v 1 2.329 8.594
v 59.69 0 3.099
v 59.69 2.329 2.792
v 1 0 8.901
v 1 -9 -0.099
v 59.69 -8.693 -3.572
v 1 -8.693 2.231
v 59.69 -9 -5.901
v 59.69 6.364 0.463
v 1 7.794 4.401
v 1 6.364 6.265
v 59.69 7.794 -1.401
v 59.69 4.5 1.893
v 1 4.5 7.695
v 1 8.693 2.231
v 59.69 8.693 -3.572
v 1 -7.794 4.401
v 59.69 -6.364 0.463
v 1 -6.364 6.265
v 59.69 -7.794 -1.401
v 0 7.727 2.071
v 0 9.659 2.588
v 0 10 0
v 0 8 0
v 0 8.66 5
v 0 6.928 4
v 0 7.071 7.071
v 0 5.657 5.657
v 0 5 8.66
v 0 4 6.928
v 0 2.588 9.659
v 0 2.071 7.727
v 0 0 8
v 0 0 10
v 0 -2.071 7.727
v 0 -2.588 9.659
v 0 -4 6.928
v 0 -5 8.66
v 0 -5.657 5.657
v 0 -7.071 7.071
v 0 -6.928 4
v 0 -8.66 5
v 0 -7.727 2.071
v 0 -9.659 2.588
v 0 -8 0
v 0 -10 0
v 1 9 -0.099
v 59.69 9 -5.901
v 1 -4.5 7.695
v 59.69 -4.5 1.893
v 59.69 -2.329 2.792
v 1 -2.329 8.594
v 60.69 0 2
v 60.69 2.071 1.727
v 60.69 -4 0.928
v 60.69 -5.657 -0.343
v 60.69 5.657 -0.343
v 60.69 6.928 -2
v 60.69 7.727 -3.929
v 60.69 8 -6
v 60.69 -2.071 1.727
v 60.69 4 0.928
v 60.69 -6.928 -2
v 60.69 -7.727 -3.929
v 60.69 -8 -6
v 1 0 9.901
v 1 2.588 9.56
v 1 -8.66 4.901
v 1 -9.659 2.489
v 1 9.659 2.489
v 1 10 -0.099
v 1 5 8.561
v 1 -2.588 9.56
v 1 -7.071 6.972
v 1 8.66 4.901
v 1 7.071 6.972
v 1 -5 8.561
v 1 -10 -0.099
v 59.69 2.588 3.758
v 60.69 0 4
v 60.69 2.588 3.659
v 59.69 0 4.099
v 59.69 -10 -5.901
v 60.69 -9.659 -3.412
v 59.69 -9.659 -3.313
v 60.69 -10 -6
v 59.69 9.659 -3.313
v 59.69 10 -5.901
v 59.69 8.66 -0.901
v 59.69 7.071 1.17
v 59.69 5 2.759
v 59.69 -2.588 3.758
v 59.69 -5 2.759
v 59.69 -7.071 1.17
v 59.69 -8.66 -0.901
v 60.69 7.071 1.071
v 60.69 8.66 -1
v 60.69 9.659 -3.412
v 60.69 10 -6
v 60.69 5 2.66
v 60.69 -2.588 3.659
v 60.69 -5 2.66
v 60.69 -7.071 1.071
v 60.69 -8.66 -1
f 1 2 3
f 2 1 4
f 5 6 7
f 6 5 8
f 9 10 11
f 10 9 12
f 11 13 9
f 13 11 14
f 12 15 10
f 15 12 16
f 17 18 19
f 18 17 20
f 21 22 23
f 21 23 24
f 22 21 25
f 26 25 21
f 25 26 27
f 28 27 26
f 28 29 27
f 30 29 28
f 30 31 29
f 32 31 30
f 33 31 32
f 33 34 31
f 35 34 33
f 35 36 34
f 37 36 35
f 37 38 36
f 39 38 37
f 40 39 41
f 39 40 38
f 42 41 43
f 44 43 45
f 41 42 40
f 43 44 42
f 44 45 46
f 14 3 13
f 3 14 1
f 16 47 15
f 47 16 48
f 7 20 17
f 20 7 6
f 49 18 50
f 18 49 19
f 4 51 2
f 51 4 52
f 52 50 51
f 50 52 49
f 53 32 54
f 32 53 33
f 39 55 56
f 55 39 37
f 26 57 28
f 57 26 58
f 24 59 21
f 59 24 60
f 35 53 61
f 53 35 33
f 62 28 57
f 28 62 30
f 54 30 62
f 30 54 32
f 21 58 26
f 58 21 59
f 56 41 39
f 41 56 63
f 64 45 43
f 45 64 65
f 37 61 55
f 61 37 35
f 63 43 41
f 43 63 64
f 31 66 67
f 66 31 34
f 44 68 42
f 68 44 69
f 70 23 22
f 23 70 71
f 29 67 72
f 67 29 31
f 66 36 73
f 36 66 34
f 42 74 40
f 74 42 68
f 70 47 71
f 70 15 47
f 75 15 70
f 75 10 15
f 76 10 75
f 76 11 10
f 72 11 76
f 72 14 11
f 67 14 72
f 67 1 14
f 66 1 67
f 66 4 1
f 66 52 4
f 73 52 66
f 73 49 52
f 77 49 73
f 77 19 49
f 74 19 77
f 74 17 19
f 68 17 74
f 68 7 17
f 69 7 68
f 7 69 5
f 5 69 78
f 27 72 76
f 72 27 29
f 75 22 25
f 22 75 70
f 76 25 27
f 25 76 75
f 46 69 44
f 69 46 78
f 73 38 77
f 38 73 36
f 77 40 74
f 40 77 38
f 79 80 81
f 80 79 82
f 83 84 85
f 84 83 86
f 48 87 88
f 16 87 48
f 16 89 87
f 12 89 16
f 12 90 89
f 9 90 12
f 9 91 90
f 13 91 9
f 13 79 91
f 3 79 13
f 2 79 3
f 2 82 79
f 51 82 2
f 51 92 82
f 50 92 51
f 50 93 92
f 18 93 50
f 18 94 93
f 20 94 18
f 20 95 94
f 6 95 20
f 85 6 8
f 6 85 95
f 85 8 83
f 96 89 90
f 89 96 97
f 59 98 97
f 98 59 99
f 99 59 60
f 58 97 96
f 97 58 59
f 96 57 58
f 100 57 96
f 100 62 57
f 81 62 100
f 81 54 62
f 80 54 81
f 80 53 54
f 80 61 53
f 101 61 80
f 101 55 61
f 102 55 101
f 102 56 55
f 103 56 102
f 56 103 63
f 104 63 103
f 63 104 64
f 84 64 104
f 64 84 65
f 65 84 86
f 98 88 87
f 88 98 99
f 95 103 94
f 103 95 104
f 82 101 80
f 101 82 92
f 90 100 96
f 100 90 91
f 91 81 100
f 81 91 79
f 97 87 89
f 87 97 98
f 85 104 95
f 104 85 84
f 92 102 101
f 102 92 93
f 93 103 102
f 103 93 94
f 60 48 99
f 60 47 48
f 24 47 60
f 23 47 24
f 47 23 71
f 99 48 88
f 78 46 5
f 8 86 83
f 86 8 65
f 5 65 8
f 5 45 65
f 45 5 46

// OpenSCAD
// file: ../build_environments.scad
// build_environments.scad: modules to build level sections
//

module pool(diameter=10.0, wall_height=2.0, step_width=3.0, connections=[])
{
    difference() {
        union() {
        difference() {
            cylinder(h=0.5,r1=diameter+step_width,r2=diameter+step_width,$fn=48);
            translate([0,0,-0.1])
                cylinder(h=0.7,r1=diameter,r2=diameter,$fn=48);
        }
        difference() {
            cylinder(h=wall_height,r1=diameter+step_width+1.0,r2=diameter+step_width+1.0,$fn=48);
            translate([0,0,-0.1])
                cylinder(h=wall_height+0.2,r1=diameter+step_width,r2=diameter+step_width,$fn=48);
        }
        }
    
        for (c = connections)
        {
            rotate([0,90,0]) {
                angle = atan2(c[1],c[0]);
                rotate([-angle,0,0]) {
                    cylinder(h=diameter+5.0,r1=c[2],r2=c[2],$fn=48);
                }
            }
        }
    }
}

module straight(length=10.0, width=2.0, dy1=0.0, dy2=0.0, dz=0.0)
{
    dims = [0, 0, 0, 0, 0, (dz/length)];
    matrix = [
        [ 1, dims[0], dims[1], 0 ],
        [ dims[2], 1, dims[4], 0 ],
        [ dims[5], dims[3], 1, 0 ],
        [ 0, 0, 0, 1 ]
    ];
    multmatrix(matrix)
    difference() {
        translate([dy1,0,0])
        union() {
            rotate([0,90,0]) {
                difference() {
                    cylinder(h=(length-dy1-dy2),r1=width+1.0,r2=width+1.0,$fn=24);
                    translate([0,0,-0.1])
                        cylinder(h=(length-dy1-dy2+0.2),r1=width,r2=width,$fn=24);
                }
                difference() {
                    cylinder(h=1.0,r1=width+2.0,r2=width+2.0,$fn=24);
                    translate([0,0,-0.1])
                        cylinder(h=1.2,r1=width,r2=width,$fn=24);
                }
                translate([0,0,(length-dy1-dy2)-1.0]) {
                    difference() {
                        cylinder(h=1.0,r1=width+2.0,r2=width+2.0,$fn=24);
                        translate([0,0,-0.1])
                            cylinder(h=1.2,r1=width,r2=width,$fn=24);
                    }
                }
            }
        }
        translate([0,0,-(2*width+4.0)/2])
            cube([3*length,3*length,2*width+4.0],center=true);
    }
}

module curve(p0=[0,0], center=[0,0], dir=1, angle=0.0, width=2.0)
{
    radius = sqrt((p0[0]-center[0])*(p0[0]-center[0]) + (p0[1]-center[1])*(p0[1]-center[1]));
    if (dir == 0) {
        difference() {
            rotate([0,0,-90])
            difference() {
                rotate_extrude(angle = angle, convexity = 10, $fn=32)
                    translate([radius, 0, 0])
                        circle(r = width+1.0,$fn=24);
                rotate([0,0,-1.0])
                    rotate_extrude(angle = angle+2.0, convexity = 10, $fn=32)
                        translate([radius, 0, 0])
                            circle(r = width,$fn=24);
            }
            translate([0,0,-(2*width+4.0)/2])
                cube([5*radius,5*radius,2*width+4.0],center=true);
        }
    }
    else {
        difference() {
            rotate([0,0,90])
            difference() {
                rotate_extrude(angle = -angle, convexity = 10, $fn=32)
                    translate([radius, 0, 0])
                        circle(r = width+1.0,$fn=24);
                rotate([0,0,1.0])
                    rotate_extrude(angle = -angle-2.0, convexity = 10, $fn=32)
                        translate([radius, 0, 0])
                            circle(r = width,$fn=24);
            }
            translate([0,0,-(2*width+4.0)/2])
                cube([5*radius,5*radius,2*width+4.0],center=true);
        }
    }

}

// test pool
//pool(diameter=12.0000, wall_height=3.0000, step_width=3.0000, connections=[[0.0000,-26.0000,2.0000], [23.6074,0.0000,2.0000]]);

// test straight, slope
//straight(length=26.0000, width=2.0000, dy1=11.8322, dy2=6.7082, dz=0.0000);
//straight(length=29.1549, width=12.0000, dy1=0.0000, dy2=0.0000, dz=-15.0000);

// test curve
//curve(p0=[23.6074, 0.0000], center=[23.6074, 5.0000], dir=0, angle=60.1011, width=2.0000);
//curve(p0=[33.6426, 12.4219], center=[37.9771, 9.9295], dir=1, angle=120.4627, width=2.0000);
// main file
use <../build_environments.scad>;
straight(length=60.6895, width=8.0000, dy1=0.0000, dy2=0.0000, dz=-6.0000);
